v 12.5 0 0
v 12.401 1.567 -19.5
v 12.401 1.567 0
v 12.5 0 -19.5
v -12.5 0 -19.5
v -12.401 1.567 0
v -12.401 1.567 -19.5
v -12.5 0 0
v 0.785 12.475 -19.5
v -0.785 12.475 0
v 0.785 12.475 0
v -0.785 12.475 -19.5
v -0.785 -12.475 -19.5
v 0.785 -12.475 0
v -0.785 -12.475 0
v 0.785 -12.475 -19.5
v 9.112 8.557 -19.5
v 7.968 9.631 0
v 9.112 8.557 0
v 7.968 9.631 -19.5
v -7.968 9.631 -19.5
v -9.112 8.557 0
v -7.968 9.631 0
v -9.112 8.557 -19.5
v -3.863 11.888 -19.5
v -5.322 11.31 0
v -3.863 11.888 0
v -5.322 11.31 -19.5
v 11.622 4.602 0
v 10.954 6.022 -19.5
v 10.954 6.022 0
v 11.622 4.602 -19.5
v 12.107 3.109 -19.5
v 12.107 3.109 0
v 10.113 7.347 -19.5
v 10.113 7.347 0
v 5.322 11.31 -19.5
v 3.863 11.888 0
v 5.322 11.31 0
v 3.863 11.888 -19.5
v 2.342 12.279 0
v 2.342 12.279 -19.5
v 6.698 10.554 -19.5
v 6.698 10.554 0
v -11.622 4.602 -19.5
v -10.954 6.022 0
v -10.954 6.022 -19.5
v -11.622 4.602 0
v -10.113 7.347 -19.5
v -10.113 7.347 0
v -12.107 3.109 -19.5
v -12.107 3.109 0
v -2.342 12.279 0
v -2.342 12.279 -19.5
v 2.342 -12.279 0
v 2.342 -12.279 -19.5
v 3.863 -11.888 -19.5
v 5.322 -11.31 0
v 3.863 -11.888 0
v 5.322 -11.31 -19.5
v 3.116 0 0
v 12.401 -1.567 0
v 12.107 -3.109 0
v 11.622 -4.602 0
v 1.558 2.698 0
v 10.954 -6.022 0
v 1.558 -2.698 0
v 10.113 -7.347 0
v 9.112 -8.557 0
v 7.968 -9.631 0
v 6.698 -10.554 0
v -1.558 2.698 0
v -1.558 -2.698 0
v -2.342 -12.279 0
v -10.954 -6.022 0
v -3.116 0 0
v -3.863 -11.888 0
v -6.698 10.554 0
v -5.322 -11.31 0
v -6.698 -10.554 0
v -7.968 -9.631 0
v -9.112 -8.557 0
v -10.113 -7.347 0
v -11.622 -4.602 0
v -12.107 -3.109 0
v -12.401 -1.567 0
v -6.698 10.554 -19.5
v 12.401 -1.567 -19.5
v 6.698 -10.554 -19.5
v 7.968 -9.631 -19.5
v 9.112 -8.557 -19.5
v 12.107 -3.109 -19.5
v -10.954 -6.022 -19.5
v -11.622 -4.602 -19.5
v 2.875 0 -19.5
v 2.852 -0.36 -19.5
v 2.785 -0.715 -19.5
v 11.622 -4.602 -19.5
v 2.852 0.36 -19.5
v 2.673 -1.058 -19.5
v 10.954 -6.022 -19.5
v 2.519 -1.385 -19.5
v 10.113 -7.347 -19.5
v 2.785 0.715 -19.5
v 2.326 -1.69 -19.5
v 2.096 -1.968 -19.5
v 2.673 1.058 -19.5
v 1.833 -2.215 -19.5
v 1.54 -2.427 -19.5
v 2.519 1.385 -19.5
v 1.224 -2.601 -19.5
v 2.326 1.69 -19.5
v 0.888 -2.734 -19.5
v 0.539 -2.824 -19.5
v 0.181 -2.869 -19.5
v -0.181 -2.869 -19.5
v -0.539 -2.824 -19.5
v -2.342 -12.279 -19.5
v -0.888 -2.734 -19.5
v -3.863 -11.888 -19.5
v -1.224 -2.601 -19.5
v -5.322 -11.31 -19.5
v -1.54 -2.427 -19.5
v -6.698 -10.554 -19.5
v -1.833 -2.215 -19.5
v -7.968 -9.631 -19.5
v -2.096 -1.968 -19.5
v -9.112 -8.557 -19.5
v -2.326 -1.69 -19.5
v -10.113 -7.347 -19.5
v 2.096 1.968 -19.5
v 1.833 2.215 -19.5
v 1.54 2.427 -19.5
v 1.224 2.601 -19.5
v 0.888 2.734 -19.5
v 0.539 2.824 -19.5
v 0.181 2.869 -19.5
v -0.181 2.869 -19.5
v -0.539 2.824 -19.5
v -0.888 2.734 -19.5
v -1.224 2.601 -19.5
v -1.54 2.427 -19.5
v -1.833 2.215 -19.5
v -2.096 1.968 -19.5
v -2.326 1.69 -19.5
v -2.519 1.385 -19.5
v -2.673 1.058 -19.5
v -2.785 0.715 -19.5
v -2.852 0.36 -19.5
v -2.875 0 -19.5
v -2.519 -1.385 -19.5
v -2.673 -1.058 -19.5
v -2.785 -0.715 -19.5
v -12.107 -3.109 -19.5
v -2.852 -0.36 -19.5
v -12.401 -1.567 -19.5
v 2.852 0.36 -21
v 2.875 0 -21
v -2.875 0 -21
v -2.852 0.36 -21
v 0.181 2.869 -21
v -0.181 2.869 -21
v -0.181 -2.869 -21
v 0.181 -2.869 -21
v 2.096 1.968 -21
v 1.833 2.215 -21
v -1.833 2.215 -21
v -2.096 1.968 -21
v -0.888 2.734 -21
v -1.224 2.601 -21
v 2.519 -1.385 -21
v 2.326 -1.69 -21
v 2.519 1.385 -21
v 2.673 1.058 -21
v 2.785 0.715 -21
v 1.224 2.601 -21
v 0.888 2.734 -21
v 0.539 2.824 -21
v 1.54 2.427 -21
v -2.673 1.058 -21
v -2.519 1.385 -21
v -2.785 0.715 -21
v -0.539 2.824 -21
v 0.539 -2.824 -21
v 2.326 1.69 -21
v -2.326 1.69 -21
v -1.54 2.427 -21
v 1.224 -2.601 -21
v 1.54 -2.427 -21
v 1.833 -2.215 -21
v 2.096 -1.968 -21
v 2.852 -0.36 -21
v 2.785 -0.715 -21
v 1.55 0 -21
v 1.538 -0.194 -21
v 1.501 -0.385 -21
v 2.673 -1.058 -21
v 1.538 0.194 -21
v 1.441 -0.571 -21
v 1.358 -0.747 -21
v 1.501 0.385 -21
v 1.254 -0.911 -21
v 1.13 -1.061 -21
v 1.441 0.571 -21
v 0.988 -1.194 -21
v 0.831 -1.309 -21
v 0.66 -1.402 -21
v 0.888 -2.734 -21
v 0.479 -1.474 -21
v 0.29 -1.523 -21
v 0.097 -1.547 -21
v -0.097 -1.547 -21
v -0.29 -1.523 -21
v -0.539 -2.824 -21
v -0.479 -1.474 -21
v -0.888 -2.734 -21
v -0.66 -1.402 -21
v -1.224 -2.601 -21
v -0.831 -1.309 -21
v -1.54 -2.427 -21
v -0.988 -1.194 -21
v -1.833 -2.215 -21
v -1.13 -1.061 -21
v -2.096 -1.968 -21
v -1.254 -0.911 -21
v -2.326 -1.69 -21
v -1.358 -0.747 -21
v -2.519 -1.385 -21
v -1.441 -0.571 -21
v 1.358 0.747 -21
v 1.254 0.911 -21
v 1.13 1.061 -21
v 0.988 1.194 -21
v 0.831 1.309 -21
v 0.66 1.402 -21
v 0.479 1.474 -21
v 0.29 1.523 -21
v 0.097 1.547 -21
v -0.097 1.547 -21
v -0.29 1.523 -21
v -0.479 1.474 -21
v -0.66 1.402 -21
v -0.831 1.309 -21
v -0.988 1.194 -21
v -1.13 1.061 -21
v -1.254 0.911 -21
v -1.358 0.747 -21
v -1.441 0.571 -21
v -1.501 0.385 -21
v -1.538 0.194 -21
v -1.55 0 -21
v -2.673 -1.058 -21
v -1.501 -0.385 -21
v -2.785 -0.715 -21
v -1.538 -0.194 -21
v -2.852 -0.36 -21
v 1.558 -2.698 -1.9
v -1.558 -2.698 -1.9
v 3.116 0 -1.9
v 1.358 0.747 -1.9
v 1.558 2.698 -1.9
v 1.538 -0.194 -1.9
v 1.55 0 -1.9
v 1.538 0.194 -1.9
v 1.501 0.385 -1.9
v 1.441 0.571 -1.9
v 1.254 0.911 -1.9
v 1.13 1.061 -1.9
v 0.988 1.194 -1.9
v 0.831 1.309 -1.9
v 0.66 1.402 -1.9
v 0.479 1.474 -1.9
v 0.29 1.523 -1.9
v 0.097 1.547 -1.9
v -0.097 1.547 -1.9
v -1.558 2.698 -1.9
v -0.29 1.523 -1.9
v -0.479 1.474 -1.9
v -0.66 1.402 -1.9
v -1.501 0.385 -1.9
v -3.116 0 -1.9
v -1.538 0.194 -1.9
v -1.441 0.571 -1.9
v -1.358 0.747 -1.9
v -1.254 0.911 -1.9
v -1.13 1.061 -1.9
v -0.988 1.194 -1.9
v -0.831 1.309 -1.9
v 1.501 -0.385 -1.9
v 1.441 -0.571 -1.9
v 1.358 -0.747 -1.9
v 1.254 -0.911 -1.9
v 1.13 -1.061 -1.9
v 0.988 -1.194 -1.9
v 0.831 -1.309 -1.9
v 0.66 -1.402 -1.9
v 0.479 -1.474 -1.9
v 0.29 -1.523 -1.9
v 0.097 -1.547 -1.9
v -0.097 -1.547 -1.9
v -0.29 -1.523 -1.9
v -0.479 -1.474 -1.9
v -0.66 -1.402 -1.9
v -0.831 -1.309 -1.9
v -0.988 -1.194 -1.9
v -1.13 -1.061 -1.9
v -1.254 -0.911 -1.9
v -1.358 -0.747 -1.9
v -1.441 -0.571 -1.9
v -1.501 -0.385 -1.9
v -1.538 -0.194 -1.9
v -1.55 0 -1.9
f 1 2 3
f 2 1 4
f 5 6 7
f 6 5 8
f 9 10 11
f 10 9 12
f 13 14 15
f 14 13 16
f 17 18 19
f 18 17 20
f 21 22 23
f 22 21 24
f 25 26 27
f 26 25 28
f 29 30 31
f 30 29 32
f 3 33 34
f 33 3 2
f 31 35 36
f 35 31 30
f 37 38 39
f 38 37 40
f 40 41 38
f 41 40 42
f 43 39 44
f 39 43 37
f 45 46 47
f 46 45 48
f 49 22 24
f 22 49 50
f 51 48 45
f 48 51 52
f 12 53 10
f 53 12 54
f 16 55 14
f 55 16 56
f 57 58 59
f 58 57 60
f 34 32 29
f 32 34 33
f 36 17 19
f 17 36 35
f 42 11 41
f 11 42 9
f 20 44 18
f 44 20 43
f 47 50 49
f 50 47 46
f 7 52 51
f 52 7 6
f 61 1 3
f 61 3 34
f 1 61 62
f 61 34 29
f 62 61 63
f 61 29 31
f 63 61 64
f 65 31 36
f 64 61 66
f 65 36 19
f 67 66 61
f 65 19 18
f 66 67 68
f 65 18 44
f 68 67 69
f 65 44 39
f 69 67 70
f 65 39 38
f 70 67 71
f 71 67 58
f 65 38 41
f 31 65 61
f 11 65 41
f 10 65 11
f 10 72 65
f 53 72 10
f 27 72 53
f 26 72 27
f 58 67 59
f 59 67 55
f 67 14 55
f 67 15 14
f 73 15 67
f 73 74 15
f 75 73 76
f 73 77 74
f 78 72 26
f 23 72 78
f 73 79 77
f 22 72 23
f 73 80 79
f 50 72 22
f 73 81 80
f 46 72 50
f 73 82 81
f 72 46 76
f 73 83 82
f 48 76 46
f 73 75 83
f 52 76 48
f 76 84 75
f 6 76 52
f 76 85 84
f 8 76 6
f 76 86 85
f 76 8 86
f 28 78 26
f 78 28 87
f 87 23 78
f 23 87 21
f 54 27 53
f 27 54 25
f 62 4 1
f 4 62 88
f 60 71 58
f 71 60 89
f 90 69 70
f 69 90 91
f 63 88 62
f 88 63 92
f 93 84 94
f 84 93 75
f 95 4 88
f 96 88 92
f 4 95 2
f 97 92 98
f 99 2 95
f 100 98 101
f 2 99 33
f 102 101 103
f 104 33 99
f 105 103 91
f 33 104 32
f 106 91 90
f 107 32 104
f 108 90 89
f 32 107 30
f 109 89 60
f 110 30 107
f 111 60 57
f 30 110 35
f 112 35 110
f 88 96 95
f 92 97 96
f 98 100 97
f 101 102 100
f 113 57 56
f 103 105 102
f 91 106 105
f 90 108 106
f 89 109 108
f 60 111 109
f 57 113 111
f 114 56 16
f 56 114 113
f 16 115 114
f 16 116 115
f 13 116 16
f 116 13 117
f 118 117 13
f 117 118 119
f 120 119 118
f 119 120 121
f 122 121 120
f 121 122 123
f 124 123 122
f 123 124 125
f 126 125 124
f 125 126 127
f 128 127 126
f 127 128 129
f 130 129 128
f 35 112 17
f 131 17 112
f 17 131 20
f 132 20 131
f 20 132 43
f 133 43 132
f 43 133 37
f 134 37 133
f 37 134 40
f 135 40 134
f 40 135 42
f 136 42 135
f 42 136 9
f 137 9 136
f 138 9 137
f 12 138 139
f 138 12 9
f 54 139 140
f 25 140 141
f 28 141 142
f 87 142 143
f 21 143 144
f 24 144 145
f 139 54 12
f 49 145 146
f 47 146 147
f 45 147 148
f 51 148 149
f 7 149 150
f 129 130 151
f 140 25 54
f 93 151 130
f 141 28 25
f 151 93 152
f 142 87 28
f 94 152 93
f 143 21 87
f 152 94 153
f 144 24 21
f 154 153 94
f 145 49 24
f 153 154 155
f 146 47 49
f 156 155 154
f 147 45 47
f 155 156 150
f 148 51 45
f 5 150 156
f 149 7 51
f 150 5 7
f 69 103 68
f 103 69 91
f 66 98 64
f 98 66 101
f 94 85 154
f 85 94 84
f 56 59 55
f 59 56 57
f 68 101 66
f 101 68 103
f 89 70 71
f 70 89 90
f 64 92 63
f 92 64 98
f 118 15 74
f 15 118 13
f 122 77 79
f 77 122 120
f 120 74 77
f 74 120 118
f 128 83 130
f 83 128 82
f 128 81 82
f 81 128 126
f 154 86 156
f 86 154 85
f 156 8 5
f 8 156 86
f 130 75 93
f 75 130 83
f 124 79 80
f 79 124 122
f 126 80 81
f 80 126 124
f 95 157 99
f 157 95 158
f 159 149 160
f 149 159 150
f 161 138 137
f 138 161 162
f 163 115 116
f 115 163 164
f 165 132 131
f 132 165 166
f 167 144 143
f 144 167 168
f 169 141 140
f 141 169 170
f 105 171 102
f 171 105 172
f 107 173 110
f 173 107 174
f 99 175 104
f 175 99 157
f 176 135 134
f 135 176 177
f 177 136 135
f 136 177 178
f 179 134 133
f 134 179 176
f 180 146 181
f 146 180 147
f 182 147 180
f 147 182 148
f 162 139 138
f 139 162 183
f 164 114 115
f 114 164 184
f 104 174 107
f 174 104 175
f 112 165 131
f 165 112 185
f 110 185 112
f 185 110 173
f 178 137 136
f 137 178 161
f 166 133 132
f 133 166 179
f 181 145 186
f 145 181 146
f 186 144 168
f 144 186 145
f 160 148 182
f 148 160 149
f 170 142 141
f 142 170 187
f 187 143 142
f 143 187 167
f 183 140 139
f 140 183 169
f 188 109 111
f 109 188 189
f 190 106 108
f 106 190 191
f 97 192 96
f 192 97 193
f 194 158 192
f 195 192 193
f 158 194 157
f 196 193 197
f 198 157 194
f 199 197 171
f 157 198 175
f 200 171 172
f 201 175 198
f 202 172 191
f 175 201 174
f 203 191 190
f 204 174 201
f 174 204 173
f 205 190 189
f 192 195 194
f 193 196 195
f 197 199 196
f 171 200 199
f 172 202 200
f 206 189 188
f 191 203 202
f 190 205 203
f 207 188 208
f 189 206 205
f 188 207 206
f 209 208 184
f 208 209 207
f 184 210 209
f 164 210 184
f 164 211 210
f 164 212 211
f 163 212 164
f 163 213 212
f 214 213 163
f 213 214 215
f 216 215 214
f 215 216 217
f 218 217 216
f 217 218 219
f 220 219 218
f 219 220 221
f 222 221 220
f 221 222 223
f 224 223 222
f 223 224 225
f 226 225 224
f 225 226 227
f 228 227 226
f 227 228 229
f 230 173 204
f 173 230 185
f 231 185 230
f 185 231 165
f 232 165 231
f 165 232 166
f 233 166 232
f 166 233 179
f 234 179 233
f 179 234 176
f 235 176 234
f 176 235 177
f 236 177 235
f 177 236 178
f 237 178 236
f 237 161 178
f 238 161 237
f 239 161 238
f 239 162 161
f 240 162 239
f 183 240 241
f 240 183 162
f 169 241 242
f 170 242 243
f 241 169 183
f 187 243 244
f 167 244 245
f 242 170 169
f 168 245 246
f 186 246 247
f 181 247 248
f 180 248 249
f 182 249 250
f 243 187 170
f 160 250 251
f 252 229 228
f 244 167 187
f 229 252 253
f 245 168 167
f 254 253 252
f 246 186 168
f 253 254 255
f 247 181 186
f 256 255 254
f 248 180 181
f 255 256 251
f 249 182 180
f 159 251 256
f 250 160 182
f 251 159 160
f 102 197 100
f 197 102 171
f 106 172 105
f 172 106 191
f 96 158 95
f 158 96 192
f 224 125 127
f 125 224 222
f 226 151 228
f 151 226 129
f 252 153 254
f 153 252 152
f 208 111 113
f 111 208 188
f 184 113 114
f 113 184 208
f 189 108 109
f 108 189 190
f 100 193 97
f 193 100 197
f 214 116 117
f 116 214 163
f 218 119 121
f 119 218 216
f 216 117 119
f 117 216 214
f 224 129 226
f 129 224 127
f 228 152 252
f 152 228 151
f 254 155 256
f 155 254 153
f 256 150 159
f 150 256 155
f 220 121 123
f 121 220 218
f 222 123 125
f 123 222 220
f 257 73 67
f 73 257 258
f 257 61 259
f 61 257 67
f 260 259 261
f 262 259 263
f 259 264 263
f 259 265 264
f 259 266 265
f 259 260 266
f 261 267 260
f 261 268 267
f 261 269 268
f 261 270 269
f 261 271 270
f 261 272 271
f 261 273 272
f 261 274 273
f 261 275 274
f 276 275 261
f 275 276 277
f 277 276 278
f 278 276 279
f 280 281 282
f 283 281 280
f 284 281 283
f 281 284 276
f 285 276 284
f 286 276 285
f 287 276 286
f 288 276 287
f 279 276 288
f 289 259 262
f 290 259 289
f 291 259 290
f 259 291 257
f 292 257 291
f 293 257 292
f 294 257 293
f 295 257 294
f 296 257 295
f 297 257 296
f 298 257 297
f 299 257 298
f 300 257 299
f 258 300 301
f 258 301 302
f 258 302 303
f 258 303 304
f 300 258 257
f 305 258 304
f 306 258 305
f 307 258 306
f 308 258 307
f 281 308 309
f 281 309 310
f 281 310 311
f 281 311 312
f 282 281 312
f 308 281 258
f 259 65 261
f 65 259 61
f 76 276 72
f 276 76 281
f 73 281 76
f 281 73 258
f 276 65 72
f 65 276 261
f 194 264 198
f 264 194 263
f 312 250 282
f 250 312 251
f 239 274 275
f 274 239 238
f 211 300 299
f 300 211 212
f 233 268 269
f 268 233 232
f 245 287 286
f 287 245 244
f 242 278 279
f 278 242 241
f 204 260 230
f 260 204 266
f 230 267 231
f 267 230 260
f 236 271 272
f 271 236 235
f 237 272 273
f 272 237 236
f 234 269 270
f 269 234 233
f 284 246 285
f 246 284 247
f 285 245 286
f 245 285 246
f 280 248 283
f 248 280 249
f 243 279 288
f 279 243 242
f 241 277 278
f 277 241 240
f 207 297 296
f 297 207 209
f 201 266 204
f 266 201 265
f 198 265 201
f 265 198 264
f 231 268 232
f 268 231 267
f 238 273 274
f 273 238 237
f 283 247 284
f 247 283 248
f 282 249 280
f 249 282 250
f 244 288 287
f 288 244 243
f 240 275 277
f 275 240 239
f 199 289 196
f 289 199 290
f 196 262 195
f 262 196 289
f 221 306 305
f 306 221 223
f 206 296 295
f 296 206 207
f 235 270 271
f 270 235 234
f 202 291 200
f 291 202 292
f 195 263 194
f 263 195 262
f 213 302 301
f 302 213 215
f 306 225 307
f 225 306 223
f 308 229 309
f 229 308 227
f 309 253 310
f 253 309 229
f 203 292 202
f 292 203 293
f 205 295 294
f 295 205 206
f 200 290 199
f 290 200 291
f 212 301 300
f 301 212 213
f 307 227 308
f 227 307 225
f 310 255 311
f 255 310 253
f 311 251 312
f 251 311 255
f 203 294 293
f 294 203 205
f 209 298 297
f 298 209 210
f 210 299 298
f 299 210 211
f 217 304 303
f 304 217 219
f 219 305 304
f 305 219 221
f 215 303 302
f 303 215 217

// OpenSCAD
$fn = 50;


difference() {
	union() {
		translate(v = [0, 0, -19.5000000000]) {
			cylinder(h = 19.5000000000, r = 12.5000000000);
		}
		#translate(v = [0, 0, -21.0000000000]) {
			cylinder(h = 21, r = 2.8750000000);
		}
	}
	union() {
		translate(v = [0, 0, 0]) {
			rotate(a = [0, 0, 0]) {
				difference() {
					union() {
						translate(v = [0, 0, -1.9000000000]) {
							linear_extrude(height = 1.9000000000) {
								polygon(points = [[3.1158000000, 0.0000000000], [1.5579000000, 2.6983619531], [-1.5579000000, 2.6983619531], [-3.1158000000, 0.0000000000], [-1.5579000000, -2.6983619531], [1.5579000000, -2.6983619531]]);
							}
						}
					}
					union();
				}
			}
		}
		#translate(v = [0, 0, -100.0000000000]) {
			cylinder(h = 200, r = 1.5500000000);
		}
	}
}
